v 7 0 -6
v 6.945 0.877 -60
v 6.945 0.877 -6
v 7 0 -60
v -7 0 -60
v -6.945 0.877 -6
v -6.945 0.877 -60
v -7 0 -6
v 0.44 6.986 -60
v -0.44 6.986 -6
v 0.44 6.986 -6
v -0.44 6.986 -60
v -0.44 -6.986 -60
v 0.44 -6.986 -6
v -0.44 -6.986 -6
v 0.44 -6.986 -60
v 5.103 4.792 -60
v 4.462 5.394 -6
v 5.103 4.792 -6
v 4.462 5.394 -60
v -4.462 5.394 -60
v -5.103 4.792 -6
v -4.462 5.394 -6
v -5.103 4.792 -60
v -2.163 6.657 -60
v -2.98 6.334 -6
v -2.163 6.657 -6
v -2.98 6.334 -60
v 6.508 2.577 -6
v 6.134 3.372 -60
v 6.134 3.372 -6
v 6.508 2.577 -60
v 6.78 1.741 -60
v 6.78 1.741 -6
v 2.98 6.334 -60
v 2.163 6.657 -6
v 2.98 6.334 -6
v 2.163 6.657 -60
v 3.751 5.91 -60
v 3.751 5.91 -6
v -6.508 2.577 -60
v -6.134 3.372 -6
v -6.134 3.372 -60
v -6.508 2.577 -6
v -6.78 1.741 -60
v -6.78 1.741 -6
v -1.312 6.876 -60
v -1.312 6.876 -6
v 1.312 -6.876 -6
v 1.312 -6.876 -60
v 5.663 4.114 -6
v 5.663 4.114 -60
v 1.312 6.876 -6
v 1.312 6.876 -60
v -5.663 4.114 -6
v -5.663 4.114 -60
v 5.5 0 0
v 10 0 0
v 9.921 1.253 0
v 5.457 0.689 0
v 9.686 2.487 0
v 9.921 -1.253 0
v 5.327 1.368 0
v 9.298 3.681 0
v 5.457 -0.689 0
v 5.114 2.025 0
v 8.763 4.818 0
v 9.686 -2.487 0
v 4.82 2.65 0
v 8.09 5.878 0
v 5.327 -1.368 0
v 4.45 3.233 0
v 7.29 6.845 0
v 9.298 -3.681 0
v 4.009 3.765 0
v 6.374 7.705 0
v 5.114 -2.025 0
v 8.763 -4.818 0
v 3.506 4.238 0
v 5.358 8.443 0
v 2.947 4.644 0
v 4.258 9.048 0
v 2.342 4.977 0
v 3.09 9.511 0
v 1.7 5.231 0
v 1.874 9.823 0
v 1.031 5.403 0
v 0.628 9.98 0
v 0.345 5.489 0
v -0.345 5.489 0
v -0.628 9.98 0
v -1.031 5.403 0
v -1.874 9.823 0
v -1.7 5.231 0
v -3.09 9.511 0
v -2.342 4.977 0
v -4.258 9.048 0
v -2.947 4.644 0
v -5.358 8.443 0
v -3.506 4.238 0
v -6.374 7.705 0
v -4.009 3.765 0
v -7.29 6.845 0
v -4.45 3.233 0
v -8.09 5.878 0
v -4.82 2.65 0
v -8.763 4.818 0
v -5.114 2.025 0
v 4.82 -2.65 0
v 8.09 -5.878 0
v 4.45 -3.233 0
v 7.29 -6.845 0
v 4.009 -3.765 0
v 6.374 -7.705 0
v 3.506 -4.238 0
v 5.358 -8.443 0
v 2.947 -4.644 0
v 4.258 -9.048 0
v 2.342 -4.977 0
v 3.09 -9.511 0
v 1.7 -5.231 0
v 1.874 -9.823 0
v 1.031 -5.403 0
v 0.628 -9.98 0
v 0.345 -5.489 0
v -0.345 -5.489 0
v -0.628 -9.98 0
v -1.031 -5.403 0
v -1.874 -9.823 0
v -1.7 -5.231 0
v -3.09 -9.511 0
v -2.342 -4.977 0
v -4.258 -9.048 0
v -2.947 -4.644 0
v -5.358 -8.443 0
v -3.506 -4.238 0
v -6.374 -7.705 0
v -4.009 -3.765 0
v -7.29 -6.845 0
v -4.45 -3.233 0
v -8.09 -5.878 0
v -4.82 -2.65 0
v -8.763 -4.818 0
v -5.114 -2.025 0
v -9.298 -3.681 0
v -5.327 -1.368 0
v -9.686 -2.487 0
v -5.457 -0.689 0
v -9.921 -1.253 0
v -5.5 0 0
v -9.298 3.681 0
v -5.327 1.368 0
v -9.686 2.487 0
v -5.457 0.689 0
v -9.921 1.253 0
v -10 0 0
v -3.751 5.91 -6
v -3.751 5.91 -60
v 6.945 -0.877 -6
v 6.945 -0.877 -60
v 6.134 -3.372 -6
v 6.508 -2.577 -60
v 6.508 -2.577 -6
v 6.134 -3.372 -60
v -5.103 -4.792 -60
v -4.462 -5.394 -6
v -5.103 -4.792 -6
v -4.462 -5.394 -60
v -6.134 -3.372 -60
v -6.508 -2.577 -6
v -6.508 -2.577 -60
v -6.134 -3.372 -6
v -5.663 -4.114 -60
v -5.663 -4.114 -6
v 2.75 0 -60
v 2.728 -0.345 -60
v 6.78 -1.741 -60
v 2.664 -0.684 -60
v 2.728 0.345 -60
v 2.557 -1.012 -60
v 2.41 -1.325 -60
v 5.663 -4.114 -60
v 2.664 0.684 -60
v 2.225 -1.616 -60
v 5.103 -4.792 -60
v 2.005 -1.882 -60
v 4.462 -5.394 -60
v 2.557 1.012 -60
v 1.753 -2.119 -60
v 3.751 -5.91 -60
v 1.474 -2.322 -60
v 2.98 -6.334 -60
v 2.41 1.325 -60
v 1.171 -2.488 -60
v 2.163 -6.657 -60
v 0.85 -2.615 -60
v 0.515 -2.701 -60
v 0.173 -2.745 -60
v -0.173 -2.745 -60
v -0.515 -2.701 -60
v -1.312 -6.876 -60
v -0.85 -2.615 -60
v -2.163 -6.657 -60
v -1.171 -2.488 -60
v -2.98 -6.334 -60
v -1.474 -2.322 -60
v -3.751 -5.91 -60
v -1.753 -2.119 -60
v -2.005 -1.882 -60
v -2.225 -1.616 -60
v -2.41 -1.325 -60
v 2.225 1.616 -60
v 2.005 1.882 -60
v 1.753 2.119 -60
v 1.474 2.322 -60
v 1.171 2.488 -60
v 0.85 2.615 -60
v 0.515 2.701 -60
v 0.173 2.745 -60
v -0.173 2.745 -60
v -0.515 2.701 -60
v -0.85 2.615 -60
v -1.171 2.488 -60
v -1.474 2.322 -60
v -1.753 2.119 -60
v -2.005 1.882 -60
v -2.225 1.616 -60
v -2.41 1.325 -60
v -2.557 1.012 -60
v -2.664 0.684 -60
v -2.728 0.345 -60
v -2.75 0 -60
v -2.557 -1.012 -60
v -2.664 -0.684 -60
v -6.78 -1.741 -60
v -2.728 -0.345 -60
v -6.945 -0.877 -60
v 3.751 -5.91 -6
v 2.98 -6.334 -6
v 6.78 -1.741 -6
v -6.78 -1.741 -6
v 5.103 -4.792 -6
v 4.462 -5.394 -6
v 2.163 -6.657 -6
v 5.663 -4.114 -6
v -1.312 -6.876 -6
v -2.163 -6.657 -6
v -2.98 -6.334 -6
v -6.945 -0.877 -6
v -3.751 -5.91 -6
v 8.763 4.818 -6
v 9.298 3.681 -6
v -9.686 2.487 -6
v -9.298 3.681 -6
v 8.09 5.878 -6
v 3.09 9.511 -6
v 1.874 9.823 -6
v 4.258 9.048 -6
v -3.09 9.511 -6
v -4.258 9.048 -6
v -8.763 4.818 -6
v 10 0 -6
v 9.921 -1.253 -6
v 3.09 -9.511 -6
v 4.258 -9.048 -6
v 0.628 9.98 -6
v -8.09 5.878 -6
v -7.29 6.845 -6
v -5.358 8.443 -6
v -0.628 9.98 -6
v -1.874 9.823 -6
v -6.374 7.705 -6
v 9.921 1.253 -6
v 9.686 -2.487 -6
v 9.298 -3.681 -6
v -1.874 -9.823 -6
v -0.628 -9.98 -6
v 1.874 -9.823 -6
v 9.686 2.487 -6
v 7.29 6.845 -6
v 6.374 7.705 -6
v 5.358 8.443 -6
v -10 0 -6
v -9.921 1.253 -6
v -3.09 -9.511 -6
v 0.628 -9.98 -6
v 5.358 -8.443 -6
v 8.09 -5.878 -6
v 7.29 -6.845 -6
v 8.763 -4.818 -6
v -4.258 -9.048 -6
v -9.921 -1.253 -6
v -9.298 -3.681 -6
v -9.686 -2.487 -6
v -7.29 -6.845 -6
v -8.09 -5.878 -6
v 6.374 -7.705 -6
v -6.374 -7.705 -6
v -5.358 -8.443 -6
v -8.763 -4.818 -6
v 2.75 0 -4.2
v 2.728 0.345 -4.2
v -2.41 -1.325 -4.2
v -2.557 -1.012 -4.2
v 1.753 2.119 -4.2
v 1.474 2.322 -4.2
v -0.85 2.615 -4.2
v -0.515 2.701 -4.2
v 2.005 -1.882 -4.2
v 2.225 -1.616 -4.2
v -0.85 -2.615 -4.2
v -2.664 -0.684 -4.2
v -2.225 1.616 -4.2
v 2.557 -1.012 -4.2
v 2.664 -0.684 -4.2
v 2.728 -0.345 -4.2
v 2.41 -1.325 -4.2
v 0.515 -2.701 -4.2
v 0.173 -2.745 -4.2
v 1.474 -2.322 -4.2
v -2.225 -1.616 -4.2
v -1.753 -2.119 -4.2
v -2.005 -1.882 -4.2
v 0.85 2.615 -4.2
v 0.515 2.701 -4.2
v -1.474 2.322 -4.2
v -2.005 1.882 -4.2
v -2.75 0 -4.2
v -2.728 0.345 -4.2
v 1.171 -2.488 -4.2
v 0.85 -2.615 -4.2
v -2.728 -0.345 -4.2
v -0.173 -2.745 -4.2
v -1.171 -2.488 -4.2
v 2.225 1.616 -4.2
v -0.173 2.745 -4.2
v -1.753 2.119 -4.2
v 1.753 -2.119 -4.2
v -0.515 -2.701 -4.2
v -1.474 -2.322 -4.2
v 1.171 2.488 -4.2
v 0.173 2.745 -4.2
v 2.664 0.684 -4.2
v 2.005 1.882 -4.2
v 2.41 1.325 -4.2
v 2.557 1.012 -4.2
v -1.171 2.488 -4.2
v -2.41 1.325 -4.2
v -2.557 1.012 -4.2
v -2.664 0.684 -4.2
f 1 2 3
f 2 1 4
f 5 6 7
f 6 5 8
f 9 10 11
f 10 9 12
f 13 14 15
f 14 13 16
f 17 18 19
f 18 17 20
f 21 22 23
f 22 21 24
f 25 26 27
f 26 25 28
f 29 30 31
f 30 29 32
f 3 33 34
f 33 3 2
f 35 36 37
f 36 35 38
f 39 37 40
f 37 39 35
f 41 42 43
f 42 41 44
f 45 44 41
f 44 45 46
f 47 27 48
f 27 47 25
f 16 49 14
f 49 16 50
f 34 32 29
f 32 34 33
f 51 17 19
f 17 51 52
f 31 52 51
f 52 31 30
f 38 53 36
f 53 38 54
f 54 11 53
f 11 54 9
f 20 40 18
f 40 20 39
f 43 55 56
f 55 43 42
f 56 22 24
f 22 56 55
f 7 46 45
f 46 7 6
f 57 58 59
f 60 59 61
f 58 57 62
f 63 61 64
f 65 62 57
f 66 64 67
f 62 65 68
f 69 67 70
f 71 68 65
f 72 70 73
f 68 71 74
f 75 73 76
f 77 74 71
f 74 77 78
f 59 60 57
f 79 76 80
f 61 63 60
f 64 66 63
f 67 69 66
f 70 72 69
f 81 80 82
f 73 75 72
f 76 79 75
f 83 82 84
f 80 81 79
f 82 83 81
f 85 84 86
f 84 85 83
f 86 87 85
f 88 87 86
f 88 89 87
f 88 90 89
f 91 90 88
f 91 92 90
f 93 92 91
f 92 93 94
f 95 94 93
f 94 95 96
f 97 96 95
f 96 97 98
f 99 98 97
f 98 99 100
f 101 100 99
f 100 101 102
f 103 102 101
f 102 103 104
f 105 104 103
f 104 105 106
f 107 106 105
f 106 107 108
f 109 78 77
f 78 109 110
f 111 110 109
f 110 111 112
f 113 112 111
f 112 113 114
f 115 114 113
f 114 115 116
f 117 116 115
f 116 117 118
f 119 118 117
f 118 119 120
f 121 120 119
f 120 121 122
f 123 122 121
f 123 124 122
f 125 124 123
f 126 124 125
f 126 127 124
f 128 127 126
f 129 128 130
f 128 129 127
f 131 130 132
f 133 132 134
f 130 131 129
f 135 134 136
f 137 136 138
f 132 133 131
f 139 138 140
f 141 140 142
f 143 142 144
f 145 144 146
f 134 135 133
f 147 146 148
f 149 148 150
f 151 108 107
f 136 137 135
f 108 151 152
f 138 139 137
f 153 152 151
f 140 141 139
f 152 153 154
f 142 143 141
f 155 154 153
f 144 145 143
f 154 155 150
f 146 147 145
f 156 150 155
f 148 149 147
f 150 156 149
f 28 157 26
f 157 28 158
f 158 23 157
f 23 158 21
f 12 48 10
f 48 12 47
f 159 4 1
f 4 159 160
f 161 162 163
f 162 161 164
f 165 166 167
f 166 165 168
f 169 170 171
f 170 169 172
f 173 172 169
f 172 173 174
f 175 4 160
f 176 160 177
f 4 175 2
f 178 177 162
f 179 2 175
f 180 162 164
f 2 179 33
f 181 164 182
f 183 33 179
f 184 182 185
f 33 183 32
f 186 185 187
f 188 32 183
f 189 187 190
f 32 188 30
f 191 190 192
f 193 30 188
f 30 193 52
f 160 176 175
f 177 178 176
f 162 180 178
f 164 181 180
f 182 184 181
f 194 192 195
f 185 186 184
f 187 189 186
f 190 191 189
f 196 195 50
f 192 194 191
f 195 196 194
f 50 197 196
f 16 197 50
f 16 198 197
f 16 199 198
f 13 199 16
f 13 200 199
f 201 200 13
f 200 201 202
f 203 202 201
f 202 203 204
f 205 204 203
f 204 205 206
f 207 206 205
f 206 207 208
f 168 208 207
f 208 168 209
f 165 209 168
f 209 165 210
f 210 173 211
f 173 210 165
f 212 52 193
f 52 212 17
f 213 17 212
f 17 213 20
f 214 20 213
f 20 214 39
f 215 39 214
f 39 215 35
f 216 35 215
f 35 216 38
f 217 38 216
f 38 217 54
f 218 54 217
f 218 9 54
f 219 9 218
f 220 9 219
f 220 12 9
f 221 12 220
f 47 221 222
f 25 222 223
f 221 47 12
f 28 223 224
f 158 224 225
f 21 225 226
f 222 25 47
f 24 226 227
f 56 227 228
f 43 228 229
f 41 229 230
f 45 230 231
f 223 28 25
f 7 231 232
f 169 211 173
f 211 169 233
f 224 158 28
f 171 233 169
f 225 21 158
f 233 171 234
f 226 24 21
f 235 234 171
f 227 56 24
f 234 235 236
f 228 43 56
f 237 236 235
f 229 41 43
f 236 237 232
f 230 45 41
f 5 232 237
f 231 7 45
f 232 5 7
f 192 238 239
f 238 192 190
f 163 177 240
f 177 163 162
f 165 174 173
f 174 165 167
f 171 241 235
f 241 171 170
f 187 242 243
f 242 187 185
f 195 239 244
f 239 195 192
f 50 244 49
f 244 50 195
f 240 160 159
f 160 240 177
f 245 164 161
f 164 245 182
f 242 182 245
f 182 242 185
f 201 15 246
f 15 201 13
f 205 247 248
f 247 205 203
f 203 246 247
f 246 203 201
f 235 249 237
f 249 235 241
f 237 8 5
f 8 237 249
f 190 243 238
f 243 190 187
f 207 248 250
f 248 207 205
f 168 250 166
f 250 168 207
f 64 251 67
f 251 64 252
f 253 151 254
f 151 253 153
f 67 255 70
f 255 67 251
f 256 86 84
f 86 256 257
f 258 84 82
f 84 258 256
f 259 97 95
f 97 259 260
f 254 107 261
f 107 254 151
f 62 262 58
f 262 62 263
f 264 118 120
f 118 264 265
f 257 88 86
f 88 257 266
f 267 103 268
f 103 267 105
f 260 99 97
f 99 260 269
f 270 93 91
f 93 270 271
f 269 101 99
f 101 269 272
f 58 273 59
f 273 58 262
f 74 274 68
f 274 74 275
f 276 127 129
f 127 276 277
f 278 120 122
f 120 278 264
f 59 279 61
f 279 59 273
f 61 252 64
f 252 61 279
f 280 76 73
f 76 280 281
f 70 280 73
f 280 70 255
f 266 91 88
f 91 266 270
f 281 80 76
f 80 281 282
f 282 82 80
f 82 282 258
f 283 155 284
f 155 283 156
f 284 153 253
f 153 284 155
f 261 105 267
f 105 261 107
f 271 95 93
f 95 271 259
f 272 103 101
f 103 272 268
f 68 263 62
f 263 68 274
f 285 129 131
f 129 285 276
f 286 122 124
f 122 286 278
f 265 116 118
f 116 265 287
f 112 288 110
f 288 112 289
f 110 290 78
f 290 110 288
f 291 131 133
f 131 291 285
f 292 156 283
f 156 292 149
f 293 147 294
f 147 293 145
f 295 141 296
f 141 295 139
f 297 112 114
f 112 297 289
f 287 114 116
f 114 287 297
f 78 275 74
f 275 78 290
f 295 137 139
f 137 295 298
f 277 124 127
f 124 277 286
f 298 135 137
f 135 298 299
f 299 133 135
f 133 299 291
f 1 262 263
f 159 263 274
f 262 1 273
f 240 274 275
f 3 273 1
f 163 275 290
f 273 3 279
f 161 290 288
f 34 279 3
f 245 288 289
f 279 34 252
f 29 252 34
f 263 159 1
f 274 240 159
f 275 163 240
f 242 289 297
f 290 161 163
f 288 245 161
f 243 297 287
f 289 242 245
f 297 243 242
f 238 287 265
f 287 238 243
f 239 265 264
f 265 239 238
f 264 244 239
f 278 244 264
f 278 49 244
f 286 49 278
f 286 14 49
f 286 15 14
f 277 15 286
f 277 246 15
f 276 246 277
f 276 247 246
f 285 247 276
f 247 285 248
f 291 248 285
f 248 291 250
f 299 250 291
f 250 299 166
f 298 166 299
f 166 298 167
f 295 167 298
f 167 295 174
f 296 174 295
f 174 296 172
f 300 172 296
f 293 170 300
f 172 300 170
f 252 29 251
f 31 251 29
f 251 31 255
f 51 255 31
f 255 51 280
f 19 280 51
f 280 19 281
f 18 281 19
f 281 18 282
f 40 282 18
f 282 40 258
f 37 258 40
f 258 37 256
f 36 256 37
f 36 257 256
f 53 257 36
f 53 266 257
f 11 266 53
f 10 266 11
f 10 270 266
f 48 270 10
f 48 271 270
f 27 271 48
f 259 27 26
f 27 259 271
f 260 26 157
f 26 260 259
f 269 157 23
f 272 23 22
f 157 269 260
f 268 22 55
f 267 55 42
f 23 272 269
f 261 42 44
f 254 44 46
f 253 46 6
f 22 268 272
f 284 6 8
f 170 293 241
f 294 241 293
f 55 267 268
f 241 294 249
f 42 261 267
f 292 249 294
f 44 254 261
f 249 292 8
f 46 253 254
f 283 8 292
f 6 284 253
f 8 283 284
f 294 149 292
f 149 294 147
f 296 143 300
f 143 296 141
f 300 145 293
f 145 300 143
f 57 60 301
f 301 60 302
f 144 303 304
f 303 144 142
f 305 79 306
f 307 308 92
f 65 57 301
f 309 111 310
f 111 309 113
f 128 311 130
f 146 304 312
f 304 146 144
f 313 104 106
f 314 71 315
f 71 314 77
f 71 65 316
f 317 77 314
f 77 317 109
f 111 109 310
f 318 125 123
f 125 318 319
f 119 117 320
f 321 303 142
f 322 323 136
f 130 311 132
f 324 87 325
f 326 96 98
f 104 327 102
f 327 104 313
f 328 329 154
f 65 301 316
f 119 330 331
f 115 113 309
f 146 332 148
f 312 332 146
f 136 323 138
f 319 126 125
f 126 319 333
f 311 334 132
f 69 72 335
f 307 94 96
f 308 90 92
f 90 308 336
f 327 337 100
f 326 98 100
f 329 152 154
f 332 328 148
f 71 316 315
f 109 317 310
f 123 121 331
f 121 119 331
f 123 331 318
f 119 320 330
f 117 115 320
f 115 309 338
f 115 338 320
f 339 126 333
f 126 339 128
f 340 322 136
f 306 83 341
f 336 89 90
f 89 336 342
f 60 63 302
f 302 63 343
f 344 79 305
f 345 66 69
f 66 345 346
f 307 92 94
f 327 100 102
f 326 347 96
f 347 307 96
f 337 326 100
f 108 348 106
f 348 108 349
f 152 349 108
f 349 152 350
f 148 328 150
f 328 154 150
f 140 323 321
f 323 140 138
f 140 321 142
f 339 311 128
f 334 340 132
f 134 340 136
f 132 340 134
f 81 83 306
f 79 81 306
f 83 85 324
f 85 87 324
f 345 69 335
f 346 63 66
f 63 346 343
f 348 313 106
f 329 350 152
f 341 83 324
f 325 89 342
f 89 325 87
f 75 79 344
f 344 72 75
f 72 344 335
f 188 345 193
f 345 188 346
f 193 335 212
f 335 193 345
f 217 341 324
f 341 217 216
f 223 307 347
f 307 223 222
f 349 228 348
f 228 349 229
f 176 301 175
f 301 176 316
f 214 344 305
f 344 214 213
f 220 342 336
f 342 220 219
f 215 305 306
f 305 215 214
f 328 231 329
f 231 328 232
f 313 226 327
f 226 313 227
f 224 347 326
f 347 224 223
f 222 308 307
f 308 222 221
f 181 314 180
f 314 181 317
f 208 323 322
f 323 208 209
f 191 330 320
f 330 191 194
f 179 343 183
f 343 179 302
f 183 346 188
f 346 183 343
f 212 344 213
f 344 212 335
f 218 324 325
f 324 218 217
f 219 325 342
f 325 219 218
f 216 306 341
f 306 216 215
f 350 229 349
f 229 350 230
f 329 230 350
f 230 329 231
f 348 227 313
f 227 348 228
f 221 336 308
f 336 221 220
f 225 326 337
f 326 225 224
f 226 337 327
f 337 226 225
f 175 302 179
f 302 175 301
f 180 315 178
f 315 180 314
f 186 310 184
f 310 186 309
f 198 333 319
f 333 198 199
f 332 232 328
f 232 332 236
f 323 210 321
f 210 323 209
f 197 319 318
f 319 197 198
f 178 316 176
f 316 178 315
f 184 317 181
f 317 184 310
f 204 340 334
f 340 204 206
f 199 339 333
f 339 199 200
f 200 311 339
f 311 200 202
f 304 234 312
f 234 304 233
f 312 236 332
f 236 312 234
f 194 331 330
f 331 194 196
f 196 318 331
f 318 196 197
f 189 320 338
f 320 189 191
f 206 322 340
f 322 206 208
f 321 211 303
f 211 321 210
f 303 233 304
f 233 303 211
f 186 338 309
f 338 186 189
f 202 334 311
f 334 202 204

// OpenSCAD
$fn = 50;


difference() {
	union() {
		translate(v = [0, 0, -60.0000000000]) {
			cylinder(h = 60, r = 7.0000000000);
		}
		translate(v = [0, 0, -6.0000000000]) {
			cylinder(h = 6, r = 10.0000000000);
		}
	}
	union() {
		translate(v = [0, 0, 0]) {
			rotate(a = [0, 0, 0]) {
				difference() {
					union() {
						#translate(v = [0, 0, -60.0000000000]) {
							cylinder(h = 60, r = 2.2500000000);
						}
						#translate(v = [0, 0, -4.2000000000]) {
							cylinder(h = 4.2000000000, r = 7.0000000000, r1 = 2.7500000000, r2 = 5.5000000000);
						}
						#translate(v = [0, 0, -60.0000000000]) {
							cylinder(h = 60, r = 2.7500000000);
						}
						#translate(v = [0, 0, -60.0000000000]) {
							cylinder(h = 60, r = 2.2500000000);
						}
					}
					union();
				}
			}
		}
	}
}
